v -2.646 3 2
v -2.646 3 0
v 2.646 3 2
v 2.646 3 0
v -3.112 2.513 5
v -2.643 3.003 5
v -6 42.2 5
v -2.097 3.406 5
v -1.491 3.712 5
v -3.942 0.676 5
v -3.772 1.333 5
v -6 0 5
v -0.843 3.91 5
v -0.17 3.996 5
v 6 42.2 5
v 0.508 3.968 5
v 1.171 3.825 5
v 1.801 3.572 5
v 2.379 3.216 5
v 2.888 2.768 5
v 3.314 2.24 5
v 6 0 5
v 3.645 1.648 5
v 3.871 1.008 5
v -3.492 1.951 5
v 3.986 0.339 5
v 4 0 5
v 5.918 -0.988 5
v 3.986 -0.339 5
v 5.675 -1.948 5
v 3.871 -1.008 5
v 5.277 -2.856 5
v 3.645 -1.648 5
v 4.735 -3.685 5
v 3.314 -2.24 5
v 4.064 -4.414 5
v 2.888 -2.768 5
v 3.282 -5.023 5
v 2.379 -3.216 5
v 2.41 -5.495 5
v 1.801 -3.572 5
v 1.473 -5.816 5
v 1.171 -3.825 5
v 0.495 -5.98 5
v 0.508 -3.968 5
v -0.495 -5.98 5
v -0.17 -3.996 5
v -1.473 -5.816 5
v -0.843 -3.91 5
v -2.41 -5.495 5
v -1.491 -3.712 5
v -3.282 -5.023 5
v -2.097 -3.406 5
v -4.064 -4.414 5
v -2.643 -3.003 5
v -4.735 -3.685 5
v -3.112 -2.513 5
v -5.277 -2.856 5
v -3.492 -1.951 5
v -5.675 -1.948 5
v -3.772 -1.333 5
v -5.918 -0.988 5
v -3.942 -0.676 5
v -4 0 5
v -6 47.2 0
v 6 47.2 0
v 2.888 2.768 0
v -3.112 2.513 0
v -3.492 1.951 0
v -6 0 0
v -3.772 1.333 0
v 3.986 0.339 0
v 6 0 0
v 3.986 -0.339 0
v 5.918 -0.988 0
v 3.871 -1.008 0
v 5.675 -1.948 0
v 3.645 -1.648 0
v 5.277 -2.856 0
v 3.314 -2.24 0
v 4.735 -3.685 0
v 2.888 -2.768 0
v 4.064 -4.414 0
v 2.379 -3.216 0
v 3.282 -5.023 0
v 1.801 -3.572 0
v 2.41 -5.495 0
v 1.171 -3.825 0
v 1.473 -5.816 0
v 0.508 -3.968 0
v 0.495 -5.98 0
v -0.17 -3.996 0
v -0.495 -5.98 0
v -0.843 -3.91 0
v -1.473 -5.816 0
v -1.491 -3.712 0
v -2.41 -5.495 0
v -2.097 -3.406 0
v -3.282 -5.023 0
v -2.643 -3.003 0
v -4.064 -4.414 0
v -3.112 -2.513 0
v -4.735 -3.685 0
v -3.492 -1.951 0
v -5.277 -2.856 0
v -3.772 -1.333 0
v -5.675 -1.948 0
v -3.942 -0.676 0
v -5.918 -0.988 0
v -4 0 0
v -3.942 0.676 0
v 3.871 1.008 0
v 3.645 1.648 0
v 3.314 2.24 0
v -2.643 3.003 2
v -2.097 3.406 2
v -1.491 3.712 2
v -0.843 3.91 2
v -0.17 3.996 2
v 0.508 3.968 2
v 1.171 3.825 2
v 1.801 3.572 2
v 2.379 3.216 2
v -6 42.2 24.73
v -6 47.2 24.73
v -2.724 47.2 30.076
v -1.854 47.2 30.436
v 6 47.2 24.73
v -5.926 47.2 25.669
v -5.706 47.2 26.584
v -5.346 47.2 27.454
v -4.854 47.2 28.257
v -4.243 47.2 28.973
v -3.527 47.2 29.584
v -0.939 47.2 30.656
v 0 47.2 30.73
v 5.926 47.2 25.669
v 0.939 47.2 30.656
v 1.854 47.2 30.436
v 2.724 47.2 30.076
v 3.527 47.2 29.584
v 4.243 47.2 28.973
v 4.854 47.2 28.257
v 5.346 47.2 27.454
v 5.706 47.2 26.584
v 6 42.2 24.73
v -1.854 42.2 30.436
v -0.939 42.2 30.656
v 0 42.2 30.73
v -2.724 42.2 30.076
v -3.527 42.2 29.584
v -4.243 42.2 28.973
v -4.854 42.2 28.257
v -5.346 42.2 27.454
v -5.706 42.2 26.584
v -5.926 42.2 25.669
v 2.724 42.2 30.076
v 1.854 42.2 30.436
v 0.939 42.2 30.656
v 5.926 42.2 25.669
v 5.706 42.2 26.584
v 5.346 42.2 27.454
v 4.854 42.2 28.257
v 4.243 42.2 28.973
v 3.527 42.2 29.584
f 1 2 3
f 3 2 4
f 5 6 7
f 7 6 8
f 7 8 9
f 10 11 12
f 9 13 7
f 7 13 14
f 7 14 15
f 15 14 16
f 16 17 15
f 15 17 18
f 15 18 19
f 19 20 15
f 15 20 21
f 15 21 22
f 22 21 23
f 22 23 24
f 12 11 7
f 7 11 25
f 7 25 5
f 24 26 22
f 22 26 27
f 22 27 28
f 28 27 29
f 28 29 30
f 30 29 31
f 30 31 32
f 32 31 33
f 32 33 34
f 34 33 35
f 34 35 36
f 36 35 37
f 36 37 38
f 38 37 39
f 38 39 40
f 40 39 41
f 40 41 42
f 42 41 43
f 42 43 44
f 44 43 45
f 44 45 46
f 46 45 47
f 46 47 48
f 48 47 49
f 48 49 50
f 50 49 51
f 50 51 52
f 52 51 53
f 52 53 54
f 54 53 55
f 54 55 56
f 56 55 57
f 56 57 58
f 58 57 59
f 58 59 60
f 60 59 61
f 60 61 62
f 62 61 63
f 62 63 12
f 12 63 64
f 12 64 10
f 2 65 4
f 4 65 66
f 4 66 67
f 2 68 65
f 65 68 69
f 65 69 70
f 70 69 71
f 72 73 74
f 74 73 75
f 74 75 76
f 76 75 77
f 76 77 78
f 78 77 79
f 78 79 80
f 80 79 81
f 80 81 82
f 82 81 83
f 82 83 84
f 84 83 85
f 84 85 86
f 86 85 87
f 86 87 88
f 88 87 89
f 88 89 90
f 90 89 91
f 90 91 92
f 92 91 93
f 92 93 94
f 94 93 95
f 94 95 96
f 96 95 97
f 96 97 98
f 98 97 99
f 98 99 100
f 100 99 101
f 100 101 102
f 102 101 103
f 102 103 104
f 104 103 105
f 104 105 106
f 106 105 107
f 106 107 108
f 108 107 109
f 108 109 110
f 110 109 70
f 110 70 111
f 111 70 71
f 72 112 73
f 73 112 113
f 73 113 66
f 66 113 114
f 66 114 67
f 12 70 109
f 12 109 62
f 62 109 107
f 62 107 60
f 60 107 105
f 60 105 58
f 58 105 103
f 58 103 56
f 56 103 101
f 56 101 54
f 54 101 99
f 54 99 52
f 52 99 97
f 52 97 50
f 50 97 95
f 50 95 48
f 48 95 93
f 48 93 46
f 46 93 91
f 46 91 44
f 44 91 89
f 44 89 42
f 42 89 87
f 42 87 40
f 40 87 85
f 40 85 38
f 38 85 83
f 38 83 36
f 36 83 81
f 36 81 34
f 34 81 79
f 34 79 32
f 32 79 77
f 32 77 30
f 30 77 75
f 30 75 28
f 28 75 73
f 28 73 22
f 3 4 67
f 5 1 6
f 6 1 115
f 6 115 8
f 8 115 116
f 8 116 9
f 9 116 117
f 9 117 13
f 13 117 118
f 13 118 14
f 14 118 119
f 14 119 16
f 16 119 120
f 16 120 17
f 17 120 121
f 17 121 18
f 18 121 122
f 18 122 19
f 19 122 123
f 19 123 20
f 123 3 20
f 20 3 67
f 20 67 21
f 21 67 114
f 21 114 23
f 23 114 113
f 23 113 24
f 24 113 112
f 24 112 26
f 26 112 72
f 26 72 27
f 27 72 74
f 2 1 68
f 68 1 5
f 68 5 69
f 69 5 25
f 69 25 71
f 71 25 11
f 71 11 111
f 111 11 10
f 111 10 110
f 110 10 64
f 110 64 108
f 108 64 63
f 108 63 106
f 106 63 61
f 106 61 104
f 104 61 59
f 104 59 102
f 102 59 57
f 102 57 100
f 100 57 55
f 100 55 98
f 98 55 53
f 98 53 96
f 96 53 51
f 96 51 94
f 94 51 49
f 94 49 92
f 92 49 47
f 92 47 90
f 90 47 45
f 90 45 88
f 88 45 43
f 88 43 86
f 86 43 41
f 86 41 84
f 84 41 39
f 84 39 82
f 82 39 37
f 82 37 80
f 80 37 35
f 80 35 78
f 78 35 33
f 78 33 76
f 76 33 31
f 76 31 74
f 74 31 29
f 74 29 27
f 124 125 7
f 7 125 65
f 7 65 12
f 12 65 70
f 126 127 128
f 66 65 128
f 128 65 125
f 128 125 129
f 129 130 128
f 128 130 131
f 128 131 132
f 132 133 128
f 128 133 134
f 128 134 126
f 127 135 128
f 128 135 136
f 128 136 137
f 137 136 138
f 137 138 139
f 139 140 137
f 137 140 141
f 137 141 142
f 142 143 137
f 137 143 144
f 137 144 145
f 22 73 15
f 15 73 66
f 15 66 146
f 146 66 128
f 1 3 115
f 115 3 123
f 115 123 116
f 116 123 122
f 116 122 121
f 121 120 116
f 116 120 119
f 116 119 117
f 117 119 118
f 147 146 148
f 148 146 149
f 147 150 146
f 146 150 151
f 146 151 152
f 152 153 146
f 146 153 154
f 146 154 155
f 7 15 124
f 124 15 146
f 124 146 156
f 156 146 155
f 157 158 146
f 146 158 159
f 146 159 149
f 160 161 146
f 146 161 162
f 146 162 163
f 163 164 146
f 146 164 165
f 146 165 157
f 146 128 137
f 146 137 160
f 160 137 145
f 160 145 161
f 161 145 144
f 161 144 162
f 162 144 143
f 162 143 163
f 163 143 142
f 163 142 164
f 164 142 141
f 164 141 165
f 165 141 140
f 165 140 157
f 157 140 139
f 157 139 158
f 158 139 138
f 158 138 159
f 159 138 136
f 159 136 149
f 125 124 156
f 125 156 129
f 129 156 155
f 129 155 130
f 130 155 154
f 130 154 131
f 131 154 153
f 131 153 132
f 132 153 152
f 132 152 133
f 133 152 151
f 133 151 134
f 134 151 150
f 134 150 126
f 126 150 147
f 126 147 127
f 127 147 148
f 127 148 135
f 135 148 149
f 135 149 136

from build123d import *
from build123d.topology import SkipClean

# Parameters (mm, degrees)
SKETCH1_R           = 6
BOSS_EXTRUDE1_DEPTH = 5
BOSS_EXTRUDE2_START = -5
BOSS_EXTRUDE2_DEPTH = 5
CUT_EXTRUDE1_START  = -3
SKETCH3_R           = 4
CUT_EXTRUDE1_DEPTH  = 3
SKETCH4_W           = 12
SKETCH4_H           = 5
BOSS_EXTRUDE3_DEPTH = 25.73
FILLET1_R           = 6


with BuildPart() as part:
    # Sketch1 → Boss-Extrude1 (new body)
    with BuildSketch(Plane.XY):
        Circle(SKETCH1_R)
        with BuildLine():
            Line((-2.645751311, 3), (2.645751311, 3))
            ThreePointArc((2.645751311, 3), (0, -4), (-2.645751311, 3))
        make_face(mode=Mode.SUBTRACT)
    extrude(amount=BOSS_EXTRUDE1_DEPTH)

    # Sketch2 → Boss-Extrude2 (add)
    with BuildSketch(Plane.XY.offset(5).offset(BOSS_EXTRUDE2_START)):
        with BuildLine():
            Line((-6, 0), (-6, 47.2))
            Line((-6, 47.2), (6, 47.2))
            Line((6, 47.2), (6, 0))
            ThreePointArc((6, 0), (0, 6), (-6, 0))
        make_face()
    extrude(amount=BOSS_EXTRUDE2_DEPTH)

    # Sketch3 → Cut-Extrude1 (cut)
    with SkipClean():  # the faces are left unmerged after this step: merging them gives an invalid solid
        with BuildSketch(Plane.XY.offset(5).offset(CUT_EXTRUDE1_START)):
            with Locations(Location((0, 0, 0), (0, 0, 131.409622109))):
                Circle(SKETCH3_R)
        extrude(amount=CUT_EXTRUDE1_DEPTH, mode=Mode.SUBTRACT)

    # Sketch4 → Boss-Extrude3 (add)
    with SkipClean():  # the faces are left unmerged after this step: merging them gives an invalid solid
        with BuildSketch(Plane.XY.offset(5)):
            with Locations((0, 44.7)):
                Rectangle(SKETCH4_W, SKETCH4_H)
        extrude(amount=BOSS_EXTRUDE3_DEPTH)

    # Fillet1
    fillet1_edges = [part.edges().sort_by_distance(p)[0] for p in [
        (-6, 44.7, 30.73),
        (6, 44.7, 30.73),
    ]]
    fillet(fillet1_edges, radius=FILLET1_R - 0.0001)  # a hair under: the kernel refuses the full size


solid = part.part
